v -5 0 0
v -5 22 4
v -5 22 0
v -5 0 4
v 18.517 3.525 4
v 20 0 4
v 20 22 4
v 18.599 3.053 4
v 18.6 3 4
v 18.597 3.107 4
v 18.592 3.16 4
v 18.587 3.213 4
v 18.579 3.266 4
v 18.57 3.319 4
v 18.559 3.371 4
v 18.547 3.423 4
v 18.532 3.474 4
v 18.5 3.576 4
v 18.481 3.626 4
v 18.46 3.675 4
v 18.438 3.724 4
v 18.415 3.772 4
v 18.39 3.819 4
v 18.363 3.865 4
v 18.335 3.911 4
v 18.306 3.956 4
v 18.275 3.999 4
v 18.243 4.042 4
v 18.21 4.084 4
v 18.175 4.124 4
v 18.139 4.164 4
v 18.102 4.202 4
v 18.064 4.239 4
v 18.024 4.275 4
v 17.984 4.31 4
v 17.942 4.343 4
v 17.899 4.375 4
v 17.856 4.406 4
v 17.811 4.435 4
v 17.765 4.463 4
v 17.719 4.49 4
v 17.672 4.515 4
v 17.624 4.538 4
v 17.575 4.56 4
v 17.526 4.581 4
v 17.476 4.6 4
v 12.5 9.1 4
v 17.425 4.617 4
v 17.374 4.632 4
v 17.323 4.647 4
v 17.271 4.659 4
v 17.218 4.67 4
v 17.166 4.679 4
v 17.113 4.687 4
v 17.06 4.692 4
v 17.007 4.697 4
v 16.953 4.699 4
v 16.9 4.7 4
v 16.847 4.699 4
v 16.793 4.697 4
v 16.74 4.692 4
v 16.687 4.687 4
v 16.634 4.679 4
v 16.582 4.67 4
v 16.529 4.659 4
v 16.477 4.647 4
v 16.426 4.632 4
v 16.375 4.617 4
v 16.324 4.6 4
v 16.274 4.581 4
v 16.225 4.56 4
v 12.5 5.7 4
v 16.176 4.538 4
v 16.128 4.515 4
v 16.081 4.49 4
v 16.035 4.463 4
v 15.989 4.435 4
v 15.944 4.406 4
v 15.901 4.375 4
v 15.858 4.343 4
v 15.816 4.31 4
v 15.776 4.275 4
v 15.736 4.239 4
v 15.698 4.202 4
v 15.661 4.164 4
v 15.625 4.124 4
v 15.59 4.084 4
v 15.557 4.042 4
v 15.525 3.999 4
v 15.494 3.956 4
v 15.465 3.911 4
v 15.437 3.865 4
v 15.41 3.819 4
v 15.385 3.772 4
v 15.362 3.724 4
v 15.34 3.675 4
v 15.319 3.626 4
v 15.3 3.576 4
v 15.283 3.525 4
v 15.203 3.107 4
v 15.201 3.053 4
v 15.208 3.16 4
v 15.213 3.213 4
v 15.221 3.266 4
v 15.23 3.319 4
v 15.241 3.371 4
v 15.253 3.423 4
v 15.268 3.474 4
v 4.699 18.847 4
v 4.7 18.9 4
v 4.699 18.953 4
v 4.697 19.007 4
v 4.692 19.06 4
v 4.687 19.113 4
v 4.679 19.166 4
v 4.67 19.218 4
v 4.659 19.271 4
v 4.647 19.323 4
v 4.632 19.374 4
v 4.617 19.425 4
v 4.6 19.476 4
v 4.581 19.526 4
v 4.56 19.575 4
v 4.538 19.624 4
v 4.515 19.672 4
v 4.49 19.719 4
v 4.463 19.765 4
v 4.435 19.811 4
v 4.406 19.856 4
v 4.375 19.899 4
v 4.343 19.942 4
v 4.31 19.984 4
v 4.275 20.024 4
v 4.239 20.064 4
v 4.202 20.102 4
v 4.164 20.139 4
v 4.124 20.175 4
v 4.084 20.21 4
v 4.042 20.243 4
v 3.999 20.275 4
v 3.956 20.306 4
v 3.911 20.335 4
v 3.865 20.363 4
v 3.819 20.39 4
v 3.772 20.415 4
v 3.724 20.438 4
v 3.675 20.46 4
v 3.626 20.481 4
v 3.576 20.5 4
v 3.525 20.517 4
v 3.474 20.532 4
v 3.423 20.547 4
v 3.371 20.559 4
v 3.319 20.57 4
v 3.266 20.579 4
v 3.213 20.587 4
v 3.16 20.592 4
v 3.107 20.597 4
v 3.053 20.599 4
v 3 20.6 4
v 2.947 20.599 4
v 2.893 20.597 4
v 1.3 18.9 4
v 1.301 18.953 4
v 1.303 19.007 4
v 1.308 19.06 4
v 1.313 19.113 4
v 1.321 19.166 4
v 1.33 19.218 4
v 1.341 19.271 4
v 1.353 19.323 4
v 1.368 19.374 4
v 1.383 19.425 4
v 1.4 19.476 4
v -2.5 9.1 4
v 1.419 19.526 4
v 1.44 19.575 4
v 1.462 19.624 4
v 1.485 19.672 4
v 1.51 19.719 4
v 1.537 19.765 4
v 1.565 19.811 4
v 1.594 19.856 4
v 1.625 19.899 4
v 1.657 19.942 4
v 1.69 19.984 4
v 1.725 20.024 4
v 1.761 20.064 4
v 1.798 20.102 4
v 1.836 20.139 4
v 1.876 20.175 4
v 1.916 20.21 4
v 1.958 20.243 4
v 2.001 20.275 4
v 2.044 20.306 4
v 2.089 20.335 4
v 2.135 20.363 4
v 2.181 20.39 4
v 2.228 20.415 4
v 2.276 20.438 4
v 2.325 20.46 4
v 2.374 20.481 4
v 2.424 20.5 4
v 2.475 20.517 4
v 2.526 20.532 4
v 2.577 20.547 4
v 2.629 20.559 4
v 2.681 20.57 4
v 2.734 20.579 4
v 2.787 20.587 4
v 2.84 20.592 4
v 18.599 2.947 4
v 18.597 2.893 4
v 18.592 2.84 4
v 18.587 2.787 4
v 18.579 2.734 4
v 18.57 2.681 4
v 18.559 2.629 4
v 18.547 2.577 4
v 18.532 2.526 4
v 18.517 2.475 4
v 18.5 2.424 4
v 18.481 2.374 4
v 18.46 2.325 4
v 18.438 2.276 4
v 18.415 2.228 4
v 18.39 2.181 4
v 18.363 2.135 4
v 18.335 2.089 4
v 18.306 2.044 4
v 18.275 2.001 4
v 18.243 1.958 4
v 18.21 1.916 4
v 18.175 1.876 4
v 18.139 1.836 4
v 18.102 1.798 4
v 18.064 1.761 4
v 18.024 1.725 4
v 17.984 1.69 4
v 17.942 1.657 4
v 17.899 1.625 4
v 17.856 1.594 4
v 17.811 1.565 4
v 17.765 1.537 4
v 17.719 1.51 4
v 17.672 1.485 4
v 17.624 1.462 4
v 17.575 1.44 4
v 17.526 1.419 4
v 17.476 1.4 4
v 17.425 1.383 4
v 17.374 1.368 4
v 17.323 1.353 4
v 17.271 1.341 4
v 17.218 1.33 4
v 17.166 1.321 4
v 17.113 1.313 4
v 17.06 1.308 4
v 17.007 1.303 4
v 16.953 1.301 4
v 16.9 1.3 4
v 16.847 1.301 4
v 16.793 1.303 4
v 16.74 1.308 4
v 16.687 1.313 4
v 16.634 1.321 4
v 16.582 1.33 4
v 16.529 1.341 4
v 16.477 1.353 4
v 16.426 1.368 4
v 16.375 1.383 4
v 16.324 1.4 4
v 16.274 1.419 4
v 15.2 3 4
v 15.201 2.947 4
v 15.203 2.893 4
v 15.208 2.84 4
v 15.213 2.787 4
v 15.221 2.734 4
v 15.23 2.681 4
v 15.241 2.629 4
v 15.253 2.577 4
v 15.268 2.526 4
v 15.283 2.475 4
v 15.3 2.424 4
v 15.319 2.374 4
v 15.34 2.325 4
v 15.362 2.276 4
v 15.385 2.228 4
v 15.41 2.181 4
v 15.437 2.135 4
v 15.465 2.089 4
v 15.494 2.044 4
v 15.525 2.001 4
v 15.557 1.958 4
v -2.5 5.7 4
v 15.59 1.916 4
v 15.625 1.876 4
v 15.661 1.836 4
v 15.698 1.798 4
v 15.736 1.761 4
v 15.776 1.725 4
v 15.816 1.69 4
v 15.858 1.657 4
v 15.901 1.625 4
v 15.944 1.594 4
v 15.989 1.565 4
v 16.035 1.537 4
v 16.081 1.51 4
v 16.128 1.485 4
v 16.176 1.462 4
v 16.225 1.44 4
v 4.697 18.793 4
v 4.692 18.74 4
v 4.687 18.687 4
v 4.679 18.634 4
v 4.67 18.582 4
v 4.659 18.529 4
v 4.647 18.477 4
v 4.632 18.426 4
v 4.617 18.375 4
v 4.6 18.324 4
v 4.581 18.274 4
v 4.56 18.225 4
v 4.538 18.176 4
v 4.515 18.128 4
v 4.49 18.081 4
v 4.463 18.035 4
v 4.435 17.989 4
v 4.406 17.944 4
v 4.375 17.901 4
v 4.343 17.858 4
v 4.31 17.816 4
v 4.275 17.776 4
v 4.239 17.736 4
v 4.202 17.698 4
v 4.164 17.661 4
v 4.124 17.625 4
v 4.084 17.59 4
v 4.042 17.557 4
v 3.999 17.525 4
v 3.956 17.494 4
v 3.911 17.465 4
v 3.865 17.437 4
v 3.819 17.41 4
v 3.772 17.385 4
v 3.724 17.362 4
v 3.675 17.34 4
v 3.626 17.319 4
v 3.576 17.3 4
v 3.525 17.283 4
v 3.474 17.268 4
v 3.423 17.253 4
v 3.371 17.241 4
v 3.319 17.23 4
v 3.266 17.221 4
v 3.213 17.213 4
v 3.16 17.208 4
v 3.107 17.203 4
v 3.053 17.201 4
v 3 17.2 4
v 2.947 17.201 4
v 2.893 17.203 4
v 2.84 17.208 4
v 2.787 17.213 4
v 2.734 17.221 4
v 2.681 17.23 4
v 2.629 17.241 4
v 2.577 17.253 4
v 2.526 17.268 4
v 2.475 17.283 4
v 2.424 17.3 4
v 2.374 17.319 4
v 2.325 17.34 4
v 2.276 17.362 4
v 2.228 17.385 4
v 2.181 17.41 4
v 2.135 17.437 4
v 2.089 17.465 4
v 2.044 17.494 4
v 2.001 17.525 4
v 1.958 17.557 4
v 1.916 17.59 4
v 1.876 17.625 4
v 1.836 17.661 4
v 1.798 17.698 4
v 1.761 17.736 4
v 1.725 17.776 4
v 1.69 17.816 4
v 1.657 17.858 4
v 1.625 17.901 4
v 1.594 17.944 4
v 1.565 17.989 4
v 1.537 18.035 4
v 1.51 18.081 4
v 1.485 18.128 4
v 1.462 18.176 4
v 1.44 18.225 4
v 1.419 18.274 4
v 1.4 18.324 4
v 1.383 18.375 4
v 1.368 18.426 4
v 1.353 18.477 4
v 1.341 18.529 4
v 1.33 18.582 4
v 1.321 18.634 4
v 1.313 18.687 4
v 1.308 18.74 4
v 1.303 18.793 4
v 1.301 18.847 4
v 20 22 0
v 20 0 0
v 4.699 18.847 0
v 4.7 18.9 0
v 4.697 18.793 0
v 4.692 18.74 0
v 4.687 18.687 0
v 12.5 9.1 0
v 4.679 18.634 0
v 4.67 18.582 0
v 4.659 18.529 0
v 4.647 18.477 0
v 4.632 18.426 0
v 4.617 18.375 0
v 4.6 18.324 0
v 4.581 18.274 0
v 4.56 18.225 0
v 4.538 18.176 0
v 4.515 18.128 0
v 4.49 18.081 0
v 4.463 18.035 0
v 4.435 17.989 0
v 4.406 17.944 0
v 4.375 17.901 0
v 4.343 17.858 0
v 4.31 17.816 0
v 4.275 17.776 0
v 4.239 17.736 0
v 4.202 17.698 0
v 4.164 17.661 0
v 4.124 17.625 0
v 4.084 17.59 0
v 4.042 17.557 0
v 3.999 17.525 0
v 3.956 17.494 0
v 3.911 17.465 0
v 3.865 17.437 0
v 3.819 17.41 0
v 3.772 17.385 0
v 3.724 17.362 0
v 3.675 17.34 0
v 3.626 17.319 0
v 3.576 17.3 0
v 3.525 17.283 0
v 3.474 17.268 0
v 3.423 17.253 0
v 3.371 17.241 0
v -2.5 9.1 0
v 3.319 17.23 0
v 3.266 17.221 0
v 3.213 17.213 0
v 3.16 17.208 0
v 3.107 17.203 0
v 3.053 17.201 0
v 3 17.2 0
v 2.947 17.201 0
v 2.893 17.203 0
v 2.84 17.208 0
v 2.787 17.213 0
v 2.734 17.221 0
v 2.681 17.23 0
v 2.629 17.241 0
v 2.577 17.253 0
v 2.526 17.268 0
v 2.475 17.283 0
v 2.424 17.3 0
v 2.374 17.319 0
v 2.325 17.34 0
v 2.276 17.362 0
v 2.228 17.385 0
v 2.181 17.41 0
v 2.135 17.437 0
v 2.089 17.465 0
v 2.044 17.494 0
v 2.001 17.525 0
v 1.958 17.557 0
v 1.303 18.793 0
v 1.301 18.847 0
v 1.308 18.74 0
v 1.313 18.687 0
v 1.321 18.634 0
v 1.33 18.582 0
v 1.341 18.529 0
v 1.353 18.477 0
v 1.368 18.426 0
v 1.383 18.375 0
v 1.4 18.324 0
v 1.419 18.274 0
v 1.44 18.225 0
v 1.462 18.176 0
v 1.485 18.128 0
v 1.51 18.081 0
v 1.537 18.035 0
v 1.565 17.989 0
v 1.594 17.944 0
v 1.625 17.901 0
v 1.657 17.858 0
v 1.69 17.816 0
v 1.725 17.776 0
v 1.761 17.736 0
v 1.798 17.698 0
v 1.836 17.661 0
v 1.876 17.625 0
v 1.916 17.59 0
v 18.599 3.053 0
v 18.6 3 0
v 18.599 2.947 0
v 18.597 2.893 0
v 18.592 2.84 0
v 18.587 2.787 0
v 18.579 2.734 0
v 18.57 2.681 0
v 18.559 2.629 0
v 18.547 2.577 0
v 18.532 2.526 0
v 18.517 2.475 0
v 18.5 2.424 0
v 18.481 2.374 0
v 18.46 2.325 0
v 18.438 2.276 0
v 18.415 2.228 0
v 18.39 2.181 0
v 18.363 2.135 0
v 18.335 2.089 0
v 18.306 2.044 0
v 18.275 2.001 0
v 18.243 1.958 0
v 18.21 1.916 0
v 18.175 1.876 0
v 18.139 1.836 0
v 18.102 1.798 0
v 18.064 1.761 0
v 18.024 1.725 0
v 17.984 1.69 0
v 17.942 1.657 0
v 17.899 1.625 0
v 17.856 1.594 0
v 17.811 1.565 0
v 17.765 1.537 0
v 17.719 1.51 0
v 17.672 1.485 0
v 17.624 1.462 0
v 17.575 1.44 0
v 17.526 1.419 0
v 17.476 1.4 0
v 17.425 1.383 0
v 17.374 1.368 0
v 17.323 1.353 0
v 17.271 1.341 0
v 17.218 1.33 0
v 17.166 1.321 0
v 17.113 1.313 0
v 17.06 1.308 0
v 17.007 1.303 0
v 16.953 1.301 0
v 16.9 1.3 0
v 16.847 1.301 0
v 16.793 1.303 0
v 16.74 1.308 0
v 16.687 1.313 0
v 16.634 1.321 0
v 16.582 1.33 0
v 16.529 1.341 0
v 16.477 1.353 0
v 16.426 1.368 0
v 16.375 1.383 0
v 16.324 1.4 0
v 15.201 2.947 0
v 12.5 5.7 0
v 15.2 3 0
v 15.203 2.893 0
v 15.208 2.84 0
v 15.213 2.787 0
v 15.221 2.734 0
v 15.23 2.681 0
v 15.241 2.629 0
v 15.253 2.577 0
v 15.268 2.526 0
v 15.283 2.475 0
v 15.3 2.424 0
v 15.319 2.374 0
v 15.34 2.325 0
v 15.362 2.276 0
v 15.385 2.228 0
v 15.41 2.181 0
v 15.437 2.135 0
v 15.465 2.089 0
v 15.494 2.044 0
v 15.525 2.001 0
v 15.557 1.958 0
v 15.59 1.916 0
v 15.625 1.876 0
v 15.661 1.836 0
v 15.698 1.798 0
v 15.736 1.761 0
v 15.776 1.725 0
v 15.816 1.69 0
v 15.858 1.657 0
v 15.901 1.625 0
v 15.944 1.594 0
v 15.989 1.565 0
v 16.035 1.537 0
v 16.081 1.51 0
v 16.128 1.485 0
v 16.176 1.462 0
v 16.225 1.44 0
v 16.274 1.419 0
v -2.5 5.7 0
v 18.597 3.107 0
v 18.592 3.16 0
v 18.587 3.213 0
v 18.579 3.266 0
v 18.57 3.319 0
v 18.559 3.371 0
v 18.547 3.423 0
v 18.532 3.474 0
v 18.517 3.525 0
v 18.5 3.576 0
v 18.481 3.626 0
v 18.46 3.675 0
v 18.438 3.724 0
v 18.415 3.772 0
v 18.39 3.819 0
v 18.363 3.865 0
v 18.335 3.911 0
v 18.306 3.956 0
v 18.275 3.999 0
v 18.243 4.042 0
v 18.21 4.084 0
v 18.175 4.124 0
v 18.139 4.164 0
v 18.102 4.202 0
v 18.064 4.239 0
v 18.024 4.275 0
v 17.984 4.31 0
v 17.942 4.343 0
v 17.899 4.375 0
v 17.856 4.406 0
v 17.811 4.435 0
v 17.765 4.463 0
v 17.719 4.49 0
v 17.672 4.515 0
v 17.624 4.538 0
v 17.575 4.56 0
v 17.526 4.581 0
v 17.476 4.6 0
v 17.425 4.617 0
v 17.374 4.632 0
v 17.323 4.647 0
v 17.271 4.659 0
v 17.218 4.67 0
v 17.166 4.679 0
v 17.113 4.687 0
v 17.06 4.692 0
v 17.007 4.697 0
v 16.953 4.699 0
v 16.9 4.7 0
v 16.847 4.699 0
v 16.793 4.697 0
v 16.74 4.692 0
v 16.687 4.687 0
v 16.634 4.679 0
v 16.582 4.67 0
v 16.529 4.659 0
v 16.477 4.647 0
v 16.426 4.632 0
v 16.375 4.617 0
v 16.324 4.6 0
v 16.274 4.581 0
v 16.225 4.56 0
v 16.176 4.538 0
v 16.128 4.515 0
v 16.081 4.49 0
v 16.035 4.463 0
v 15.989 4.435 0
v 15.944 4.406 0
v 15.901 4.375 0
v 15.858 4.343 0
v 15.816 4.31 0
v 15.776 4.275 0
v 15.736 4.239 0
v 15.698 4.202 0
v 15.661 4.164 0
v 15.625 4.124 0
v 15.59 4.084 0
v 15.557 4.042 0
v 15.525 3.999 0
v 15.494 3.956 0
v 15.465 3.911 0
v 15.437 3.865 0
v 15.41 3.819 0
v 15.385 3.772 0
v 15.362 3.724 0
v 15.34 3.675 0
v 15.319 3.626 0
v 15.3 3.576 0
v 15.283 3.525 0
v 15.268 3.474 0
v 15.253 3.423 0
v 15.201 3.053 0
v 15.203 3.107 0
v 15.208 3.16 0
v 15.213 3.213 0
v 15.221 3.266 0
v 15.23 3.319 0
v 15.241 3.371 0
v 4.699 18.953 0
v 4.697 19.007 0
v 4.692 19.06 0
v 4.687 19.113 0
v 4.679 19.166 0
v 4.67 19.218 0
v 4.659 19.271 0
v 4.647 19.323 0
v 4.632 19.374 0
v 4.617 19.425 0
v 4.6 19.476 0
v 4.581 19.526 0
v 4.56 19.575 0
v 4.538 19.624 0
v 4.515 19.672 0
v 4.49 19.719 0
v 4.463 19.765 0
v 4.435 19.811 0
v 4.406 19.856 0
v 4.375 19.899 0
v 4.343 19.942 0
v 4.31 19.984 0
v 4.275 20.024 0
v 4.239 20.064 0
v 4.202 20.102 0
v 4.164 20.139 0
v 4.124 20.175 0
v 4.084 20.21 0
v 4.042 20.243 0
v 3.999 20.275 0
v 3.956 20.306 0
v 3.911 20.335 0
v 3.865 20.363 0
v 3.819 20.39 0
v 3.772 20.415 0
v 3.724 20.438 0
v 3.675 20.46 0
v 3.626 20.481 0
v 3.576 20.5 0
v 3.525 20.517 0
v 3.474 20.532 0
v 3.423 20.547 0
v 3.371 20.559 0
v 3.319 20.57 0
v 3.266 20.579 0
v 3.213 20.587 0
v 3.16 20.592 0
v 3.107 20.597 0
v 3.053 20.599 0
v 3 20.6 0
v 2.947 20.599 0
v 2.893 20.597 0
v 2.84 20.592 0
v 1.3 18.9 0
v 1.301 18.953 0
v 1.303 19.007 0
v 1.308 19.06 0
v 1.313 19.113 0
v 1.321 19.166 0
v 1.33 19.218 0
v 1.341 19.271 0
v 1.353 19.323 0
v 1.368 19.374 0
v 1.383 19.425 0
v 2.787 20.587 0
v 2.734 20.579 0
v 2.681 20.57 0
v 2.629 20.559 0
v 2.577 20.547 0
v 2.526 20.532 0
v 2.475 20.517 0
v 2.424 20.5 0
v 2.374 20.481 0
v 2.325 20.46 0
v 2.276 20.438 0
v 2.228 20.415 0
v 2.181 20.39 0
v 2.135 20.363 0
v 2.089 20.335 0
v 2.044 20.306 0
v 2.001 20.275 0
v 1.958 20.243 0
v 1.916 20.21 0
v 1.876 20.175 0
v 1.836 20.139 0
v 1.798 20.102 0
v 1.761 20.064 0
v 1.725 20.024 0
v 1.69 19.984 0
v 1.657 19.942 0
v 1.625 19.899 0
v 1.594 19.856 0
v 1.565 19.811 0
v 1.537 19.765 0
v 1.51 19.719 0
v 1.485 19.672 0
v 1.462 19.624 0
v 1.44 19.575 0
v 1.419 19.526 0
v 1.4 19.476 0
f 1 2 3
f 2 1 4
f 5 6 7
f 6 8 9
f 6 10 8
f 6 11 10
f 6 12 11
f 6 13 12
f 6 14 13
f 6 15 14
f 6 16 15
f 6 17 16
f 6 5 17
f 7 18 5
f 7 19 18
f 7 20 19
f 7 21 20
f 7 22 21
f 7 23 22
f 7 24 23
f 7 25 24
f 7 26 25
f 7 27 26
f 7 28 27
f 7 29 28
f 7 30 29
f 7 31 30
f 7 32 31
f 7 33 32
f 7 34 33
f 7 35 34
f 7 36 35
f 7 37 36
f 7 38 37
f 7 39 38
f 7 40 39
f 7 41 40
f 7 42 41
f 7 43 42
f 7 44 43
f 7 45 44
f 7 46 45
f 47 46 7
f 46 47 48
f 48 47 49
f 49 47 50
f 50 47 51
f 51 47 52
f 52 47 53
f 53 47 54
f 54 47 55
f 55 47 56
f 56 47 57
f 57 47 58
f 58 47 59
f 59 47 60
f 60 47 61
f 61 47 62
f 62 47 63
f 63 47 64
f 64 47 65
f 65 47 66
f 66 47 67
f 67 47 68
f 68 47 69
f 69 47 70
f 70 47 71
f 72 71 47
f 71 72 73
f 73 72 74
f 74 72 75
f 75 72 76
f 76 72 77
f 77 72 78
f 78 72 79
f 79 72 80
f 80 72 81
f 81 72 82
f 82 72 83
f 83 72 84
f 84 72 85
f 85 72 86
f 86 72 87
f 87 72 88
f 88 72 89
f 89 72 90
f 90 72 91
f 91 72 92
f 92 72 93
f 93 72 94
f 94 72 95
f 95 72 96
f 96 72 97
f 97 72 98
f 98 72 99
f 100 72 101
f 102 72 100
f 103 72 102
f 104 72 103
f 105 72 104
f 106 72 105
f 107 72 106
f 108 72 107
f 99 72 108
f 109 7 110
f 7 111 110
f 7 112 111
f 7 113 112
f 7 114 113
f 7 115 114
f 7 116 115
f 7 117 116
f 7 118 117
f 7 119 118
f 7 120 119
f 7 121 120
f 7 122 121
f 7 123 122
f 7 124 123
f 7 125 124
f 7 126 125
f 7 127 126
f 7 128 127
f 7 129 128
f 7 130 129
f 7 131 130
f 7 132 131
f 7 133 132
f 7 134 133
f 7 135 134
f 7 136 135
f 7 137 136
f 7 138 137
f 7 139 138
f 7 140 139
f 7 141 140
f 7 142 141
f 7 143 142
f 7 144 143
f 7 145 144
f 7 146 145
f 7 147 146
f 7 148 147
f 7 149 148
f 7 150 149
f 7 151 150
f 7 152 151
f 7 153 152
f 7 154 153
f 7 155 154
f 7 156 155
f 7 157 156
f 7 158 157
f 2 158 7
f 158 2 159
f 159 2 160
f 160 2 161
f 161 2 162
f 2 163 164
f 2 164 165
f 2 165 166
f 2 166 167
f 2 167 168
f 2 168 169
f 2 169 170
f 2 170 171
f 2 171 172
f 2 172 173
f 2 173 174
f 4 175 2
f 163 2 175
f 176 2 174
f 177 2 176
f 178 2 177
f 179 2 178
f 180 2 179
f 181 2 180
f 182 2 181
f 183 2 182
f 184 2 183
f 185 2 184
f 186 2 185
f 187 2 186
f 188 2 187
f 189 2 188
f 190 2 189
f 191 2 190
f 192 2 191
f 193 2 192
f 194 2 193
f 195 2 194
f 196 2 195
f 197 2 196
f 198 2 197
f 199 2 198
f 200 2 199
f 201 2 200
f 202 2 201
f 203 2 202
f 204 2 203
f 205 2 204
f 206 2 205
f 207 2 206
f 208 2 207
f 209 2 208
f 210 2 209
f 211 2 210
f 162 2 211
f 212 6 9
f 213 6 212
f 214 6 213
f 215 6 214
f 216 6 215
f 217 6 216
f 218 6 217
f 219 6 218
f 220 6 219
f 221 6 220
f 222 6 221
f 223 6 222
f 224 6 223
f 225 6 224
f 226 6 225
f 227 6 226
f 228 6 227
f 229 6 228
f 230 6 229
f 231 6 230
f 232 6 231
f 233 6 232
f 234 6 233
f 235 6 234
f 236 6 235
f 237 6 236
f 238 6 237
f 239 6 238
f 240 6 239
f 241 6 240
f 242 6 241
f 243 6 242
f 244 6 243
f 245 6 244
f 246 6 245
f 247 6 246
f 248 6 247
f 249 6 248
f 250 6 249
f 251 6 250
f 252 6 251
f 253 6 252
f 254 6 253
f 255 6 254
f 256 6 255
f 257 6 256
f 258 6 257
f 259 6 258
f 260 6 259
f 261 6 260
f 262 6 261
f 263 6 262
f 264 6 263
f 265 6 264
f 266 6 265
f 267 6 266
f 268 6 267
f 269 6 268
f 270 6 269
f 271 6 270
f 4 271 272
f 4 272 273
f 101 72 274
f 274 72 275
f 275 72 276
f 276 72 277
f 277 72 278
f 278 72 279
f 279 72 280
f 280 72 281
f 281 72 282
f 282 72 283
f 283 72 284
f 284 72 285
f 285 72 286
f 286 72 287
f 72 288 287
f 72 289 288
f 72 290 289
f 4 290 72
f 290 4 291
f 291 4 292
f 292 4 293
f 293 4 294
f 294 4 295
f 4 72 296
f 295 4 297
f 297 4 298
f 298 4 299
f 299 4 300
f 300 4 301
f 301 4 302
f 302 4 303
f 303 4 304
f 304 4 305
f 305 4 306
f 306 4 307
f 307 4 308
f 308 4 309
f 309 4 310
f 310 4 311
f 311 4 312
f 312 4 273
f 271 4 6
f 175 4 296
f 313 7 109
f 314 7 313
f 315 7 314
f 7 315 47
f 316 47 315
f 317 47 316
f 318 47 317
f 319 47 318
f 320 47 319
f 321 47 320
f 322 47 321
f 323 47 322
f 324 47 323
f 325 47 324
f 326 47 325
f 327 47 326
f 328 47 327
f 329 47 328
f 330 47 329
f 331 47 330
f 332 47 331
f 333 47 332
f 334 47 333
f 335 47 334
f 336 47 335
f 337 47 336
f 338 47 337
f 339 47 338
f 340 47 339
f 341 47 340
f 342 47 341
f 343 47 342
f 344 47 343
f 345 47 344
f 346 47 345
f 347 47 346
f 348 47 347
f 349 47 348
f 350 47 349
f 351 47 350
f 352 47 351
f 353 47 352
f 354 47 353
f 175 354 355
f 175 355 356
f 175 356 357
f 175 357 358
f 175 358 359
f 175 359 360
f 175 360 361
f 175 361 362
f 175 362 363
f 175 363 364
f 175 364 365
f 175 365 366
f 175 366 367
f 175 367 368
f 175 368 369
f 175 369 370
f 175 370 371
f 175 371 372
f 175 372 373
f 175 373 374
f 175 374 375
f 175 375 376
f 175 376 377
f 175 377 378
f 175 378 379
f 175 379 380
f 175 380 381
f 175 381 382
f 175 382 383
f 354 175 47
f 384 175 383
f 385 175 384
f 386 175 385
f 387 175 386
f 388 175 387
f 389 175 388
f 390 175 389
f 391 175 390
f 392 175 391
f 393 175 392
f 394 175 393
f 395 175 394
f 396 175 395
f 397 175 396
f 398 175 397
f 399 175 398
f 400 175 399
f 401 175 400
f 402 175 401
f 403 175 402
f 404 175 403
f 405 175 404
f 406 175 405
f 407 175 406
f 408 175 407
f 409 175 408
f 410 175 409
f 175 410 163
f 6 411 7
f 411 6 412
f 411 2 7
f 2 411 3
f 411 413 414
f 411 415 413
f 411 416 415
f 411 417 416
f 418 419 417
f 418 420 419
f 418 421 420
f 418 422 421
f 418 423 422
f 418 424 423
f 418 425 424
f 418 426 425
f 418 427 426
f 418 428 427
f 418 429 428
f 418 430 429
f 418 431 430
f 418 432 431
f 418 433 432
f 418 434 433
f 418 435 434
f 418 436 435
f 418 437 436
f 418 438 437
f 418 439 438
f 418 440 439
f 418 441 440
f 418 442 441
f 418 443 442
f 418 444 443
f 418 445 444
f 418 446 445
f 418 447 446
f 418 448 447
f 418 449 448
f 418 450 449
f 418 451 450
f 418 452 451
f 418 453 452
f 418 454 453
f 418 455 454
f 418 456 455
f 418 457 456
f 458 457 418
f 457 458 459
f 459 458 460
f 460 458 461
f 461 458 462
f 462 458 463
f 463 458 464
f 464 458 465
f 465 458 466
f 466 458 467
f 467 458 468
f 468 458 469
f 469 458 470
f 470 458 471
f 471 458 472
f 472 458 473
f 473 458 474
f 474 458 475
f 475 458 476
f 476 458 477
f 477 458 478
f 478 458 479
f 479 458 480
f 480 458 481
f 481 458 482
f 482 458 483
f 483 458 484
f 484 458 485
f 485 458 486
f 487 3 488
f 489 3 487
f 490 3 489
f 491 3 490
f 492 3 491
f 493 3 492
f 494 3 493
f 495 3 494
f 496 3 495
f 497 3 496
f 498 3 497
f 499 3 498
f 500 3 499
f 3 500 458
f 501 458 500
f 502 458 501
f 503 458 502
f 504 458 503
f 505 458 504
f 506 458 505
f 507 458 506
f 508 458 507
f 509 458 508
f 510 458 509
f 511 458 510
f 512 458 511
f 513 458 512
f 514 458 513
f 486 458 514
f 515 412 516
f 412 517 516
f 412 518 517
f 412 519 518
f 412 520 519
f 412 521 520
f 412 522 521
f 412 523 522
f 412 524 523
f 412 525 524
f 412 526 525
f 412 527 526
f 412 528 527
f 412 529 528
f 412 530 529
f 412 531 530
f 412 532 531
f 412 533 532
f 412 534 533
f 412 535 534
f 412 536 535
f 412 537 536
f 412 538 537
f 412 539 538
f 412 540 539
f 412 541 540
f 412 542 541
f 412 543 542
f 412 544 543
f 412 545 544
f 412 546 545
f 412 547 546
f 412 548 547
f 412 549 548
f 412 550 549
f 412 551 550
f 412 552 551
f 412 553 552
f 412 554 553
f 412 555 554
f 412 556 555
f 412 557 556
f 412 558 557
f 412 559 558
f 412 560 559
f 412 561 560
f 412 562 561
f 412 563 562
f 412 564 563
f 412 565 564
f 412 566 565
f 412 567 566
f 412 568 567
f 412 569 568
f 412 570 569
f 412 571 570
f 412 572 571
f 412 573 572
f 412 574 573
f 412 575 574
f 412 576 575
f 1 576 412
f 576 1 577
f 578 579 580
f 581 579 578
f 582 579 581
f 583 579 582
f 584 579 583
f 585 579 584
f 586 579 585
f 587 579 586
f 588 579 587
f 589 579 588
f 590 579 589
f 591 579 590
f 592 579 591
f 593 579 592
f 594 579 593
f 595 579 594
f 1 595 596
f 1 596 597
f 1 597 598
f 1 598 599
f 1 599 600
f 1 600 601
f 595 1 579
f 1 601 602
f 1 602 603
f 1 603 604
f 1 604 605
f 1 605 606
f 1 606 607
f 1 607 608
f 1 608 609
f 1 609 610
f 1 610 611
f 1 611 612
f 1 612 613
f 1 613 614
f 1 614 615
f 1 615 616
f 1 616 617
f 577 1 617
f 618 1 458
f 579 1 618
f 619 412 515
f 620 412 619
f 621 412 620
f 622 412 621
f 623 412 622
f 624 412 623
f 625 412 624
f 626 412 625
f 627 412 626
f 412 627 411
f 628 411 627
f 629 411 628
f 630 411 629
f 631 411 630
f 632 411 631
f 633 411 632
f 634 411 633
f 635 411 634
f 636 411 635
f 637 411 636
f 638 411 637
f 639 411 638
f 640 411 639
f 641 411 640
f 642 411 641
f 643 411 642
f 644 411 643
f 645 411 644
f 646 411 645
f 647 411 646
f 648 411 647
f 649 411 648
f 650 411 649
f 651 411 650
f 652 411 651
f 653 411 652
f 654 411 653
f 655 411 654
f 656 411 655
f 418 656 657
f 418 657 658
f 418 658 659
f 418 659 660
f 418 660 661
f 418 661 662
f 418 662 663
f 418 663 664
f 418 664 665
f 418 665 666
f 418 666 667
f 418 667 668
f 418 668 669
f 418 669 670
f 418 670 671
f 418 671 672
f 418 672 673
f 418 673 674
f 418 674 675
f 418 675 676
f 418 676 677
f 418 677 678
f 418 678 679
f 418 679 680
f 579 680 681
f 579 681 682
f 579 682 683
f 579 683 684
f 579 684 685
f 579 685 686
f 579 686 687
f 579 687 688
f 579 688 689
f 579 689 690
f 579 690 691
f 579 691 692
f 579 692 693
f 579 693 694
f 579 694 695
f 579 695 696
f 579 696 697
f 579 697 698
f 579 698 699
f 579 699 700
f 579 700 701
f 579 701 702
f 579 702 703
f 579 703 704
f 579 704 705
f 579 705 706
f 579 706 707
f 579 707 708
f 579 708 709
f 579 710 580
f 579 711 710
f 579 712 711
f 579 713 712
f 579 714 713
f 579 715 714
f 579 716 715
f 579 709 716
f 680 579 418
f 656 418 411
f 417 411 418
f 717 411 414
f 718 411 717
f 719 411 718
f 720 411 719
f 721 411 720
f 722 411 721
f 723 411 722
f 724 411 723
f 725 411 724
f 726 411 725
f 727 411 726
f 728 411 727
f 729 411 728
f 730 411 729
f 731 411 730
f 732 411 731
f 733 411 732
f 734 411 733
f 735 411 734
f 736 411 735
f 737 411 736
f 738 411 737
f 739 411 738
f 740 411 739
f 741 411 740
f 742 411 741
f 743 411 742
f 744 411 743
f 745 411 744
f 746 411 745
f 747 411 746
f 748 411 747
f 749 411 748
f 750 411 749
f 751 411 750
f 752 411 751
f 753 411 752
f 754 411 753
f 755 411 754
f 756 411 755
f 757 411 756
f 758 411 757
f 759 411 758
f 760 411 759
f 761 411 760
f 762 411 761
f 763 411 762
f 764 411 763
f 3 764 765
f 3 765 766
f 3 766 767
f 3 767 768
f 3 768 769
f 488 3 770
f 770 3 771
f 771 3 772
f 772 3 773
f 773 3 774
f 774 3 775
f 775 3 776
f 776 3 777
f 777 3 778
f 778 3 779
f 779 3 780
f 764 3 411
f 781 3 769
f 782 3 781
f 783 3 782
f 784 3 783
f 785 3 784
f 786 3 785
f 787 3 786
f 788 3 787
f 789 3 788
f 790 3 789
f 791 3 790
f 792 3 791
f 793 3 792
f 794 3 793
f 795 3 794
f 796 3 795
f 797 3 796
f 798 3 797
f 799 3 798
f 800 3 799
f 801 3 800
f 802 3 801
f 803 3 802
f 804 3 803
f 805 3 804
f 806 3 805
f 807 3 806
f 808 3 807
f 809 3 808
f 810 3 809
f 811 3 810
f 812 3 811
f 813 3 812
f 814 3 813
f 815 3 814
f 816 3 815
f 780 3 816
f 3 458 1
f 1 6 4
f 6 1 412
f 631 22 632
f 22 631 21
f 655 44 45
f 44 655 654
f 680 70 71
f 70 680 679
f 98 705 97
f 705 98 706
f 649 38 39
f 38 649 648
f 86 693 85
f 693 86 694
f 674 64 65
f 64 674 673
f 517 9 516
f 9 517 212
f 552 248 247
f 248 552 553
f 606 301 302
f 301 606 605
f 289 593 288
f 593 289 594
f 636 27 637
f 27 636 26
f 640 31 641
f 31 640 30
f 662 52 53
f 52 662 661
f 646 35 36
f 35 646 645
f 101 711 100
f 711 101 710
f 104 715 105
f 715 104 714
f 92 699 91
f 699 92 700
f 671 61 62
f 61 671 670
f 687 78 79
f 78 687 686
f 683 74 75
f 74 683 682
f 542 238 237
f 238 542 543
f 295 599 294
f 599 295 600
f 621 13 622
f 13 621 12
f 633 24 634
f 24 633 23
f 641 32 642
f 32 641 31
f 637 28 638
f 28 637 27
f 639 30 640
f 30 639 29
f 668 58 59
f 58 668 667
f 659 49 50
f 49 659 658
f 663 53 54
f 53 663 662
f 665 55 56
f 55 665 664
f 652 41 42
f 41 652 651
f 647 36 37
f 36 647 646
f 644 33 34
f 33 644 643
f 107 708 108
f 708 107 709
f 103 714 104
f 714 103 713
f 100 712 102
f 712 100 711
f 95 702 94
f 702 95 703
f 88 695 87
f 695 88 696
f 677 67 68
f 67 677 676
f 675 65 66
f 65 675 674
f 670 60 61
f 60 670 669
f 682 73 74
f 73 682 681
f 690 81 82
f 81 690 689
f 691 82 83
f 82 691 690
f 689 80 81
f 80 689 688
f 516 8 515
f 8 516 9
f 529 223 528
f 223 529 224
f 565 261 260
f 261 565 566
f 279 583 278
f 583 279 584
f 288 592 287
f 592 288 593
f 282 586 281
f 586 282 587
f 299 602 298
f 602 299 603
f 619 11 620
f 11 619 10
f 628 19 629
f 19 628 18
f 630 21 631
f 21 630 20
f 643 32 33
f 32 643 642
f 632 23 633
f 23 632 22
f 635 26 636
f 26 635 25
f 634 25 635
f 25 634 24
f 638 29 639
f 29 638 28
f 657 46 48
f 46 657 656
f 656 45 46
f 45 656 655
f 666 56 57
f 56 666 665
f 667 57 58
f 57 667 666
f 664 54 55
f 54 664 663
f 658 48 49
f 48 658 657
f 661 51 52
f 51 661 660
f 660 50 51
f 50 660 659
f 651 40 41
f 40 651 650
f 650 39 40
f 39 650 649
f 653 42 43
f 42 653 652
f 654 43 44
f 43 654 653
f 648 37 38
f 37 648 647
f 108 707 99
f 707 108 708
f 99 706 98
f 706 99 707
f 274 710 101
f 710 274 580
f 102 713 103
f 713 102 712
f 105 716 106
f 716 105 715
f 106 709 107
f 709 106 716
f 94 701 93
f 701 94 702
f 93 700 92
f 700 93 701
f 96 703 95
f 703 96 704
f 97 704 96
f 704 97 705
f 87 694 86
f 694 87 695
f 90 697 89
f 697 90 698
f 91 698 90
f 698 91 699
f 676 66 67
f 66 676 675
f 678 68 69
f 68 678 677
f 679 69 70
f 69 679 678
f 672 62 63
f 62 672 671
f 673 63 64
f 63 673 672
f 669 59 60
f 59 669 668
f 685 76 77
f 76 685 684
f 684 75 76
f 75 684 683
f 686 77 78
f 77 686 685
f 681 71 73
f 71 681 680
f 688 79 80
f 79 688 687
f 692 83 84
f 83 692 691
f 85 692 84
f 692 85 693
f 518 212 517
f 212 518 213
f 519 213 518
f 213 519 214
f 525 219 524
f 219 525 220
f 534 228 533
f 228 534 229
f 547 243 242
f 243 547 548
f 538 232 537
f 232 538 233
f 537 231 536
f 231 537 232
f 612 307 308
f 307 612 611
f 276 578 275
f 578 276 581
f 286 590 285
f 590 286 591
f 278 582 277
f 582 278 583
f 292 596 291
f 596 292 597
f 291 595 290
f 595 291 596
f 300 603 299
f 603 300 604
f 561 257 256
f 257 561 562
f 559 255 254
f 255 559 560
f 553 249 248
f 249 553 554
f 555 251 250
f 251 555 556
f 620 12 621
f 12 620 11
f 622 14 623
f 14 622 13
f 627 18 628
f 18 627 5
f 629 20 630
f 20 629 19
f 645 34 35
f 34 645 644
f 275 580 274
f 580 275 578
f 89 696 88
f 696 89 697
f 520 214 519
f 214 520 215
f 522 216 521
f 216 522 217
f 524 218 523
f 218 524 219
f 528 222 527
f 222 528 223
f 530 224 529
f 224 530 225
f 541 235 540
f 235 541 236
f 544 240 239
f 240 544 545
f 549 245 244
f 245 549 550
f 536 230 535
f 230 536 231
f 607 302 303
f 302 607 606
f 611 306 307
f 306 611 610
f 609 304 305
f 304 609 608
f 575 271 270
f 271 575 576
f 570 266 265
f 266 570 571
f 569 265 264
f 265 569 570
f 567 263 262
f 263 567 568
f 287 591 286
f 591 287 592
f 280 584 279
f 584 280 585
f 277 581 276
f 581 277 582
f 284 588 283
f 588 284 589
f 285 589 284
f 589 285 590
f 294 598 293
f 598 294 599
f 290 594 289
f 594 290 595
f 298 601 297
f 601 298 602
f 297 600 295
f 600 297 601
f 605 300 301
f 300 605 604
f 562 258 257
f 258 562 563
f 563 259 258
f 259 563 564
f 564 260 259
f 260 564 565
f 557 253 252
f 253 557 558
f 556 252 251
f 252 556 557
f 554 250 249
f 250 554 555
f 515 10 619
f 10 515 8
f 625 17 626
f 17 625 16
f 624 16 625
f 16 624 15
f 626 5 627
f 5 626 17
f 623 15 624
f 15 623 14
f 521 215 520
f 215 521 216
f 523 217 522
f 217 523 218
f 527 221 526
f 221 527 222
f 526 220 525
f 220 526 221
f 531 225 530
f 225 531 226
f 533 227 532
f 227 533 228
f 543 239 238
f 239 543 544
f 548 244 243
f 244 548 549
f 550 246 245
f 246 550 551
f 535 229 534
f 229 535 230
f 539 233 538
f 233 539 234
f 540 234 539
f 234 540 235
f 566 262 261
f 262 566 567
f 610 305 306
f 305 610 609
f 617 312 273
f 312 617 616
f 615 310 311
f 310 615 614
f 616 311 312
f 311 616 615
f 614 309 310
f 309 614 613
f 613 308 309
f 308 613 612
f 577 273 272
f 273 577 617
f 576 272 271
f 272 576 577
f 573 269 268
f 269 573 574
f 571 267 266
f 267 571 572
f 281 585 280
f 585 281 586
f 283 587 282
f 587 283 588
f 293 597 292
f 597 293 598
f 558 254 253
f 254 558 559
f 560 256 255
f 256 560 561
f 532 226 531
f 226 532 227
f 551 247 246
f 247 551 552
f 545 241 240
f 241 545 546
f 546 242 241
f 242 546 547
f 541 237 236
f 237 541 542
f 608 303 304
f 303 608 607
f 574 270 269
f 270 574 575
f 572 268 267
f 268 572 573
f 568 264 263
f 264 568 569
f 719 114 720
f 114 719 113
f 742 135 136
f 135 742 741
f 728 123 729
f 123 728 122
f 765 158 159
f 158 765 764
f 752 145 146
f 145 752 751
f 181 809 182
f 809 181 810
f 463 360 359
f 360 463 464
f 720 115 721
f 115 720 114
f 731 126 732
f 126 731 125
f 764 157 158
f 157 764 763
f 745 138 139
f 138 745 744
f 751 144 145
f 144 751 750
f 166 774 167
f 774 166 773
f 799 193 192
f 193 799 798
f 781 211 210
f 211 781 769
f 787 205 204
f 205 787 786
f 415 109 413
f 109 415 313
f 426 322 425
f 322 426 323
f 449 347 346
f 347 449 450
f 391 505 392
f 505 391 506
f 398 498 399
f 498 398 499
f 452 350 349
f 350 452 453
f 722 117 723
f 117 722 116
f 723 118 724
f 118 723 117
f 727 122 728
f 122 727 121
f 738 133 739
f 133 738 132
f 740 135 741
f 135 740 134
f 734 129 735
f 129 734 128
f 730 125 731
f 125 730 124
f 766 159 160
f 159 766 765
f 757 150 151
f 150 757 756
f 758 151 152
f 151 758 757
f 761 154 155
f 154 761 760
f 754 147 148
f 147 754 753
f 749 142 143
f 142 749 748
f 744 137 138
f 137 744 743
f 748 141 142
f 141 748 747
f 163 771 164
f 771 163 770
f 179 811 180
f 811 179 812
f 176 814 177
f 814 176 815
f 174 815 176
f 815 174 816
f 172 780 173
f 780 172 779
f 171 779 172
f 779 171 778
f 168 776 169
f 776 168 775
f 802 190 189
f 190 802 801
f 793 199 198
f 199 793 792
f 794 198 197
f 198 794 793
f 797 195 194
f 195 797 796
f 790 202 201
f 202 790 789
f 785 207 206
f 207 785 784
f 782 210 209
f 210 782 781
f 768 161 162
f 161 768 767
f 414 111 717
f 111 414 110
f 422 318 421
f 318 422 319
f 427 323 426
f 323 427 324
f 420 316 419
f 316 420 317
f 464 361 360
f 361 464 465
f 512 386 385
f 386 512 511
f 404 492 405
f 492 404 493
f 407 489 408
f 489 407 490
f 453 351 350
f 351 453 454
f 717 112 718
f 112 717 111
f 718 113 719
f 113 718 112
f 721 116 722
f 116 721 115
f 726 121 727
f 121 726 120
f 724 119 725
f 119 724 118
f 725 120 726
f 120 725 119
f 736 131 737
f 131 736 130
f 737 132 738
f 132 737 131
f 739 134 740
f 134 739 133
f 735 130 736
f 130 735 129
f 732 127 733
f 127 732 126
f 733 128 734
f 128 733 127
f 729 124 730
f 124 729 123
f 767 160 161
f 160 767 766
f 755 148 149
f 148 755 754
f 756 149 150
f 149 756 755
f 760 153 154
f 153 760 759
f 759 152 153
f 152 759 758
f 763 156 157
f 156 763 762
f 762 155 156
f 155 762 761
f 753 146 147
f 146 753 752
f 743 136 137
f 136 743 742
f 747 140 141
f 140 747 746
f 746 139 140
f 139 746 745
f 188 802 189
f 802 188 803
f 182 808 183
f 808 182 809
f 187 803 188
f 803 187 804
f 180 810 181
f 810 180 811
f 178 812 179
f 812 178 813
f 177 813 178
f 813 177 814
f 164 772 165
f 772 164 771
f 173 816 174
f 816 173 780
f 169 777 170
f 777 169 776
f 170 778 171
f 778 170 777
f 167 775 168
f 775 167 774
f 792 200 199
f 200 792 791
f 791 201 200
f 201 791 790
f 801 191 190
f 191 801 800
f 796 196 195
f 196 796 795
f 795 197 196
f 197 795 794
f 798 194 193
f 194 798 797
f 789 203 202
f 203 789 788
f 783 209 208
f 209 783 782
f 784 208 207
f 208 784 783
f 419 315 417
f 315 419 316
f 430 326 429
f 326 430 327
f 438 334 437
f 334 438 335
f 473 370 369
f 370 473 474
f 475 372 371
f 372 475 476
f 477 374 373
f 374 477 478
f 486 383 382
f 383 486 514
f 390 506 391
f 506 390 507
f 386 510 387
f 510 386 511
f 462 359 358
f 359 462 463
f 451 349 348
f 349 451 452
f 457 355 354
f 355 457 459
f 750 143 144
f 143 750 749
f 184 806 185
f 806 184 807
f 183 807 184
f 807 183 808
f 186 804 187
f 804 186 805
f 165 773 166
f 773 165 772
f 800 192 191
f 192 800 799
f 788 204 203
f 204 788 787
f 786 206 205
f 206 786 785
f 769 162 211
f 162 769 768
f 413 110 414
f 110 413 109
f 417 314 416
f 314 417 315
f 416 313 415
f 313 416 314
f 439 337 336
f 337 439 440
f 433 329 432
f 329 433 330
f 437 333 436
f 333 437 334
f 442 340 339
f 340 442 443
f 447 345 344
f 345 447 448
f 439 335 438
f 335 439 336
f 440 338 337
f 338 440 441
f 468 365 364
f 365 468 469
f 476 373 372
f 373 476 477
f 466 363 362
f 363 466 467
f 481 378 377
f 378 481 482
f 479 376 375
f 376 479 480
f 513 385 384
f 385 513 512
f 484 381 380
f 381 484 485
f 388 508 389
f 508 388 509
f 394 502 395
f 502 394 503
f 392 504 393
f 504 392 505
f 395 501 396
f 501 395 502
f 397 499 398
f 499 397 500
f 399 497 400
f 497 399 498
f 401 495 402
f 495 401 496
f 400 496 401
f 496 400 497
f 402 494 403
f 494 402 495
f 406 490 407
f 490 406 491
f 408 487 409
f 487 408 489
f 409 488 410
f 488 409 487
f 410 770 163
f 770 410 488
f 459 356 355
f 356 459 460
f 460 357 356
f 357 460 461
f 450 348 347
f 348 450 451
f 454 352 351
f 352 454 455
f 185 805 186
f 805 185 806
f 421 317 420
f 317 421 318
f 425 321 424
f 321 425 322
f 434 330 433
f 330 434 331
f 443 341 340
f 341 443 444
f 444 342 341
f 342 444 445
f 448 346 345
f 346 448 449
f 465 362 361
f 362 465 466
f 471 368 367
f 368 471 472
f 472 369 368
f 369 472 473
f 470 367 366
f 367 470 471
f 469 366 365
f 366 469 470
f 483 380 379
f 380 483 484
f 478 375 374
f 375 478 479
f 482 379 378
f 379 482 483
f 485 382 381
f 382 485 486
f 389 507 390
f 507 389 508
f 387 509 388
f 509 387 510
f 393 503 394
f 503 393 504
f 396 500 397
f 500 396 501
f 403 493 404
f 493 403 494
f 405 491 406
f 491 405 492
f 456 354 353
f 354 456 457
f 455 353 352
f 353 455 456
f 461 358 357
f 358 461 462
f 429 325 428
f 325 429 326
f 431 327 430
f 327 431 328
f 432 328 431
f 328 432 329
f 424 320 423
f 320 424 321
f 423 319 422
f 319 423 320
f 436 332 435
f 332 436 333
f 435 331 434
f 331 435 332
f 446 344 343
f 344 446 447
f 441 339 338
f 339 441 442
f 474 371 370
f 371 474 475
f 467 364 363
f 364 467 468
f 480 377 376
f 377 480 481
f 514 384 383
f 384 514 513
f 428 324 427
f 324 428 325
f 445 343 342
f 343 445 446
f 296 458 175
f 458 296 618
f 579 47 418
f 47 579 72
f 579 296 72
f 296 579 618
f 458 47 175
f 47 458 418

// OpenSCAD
// 18, 16

difference(){
    translate([-5,0,0])
    cube([25,22,4]);
    
    sx = 3;
    sy = 3;
    
    //translate([sx,sy,-0.5])
    //#cylinder(r=1.6/2, h=10, $fn=200);
    
    translate([sx+15.5-1.6,sy,-0.5])
    #cylinder(r=1.7, h=10, $fn=200);
    
    translate([sx,sy+17.5-1.6, -0.6])
    #cylinder(r=1.7, h=10, $fn=200);
    
    //translate([sx+16-1.6,sy+18-1.6, -0.6])
    //#cylinder(r=1.6/2, h=10, $fn=200);
    
    // switch
    translate([-5,0,4])
    %cube([20,15,6]);
    
    //screw-holes for switch
    translate([-2.5,5.7,-0.1])
    #cube([15, 3.4, 10]);
    
    //translate([sx-1.6/2,0,5])
    //cube([16,5,2]);
}
